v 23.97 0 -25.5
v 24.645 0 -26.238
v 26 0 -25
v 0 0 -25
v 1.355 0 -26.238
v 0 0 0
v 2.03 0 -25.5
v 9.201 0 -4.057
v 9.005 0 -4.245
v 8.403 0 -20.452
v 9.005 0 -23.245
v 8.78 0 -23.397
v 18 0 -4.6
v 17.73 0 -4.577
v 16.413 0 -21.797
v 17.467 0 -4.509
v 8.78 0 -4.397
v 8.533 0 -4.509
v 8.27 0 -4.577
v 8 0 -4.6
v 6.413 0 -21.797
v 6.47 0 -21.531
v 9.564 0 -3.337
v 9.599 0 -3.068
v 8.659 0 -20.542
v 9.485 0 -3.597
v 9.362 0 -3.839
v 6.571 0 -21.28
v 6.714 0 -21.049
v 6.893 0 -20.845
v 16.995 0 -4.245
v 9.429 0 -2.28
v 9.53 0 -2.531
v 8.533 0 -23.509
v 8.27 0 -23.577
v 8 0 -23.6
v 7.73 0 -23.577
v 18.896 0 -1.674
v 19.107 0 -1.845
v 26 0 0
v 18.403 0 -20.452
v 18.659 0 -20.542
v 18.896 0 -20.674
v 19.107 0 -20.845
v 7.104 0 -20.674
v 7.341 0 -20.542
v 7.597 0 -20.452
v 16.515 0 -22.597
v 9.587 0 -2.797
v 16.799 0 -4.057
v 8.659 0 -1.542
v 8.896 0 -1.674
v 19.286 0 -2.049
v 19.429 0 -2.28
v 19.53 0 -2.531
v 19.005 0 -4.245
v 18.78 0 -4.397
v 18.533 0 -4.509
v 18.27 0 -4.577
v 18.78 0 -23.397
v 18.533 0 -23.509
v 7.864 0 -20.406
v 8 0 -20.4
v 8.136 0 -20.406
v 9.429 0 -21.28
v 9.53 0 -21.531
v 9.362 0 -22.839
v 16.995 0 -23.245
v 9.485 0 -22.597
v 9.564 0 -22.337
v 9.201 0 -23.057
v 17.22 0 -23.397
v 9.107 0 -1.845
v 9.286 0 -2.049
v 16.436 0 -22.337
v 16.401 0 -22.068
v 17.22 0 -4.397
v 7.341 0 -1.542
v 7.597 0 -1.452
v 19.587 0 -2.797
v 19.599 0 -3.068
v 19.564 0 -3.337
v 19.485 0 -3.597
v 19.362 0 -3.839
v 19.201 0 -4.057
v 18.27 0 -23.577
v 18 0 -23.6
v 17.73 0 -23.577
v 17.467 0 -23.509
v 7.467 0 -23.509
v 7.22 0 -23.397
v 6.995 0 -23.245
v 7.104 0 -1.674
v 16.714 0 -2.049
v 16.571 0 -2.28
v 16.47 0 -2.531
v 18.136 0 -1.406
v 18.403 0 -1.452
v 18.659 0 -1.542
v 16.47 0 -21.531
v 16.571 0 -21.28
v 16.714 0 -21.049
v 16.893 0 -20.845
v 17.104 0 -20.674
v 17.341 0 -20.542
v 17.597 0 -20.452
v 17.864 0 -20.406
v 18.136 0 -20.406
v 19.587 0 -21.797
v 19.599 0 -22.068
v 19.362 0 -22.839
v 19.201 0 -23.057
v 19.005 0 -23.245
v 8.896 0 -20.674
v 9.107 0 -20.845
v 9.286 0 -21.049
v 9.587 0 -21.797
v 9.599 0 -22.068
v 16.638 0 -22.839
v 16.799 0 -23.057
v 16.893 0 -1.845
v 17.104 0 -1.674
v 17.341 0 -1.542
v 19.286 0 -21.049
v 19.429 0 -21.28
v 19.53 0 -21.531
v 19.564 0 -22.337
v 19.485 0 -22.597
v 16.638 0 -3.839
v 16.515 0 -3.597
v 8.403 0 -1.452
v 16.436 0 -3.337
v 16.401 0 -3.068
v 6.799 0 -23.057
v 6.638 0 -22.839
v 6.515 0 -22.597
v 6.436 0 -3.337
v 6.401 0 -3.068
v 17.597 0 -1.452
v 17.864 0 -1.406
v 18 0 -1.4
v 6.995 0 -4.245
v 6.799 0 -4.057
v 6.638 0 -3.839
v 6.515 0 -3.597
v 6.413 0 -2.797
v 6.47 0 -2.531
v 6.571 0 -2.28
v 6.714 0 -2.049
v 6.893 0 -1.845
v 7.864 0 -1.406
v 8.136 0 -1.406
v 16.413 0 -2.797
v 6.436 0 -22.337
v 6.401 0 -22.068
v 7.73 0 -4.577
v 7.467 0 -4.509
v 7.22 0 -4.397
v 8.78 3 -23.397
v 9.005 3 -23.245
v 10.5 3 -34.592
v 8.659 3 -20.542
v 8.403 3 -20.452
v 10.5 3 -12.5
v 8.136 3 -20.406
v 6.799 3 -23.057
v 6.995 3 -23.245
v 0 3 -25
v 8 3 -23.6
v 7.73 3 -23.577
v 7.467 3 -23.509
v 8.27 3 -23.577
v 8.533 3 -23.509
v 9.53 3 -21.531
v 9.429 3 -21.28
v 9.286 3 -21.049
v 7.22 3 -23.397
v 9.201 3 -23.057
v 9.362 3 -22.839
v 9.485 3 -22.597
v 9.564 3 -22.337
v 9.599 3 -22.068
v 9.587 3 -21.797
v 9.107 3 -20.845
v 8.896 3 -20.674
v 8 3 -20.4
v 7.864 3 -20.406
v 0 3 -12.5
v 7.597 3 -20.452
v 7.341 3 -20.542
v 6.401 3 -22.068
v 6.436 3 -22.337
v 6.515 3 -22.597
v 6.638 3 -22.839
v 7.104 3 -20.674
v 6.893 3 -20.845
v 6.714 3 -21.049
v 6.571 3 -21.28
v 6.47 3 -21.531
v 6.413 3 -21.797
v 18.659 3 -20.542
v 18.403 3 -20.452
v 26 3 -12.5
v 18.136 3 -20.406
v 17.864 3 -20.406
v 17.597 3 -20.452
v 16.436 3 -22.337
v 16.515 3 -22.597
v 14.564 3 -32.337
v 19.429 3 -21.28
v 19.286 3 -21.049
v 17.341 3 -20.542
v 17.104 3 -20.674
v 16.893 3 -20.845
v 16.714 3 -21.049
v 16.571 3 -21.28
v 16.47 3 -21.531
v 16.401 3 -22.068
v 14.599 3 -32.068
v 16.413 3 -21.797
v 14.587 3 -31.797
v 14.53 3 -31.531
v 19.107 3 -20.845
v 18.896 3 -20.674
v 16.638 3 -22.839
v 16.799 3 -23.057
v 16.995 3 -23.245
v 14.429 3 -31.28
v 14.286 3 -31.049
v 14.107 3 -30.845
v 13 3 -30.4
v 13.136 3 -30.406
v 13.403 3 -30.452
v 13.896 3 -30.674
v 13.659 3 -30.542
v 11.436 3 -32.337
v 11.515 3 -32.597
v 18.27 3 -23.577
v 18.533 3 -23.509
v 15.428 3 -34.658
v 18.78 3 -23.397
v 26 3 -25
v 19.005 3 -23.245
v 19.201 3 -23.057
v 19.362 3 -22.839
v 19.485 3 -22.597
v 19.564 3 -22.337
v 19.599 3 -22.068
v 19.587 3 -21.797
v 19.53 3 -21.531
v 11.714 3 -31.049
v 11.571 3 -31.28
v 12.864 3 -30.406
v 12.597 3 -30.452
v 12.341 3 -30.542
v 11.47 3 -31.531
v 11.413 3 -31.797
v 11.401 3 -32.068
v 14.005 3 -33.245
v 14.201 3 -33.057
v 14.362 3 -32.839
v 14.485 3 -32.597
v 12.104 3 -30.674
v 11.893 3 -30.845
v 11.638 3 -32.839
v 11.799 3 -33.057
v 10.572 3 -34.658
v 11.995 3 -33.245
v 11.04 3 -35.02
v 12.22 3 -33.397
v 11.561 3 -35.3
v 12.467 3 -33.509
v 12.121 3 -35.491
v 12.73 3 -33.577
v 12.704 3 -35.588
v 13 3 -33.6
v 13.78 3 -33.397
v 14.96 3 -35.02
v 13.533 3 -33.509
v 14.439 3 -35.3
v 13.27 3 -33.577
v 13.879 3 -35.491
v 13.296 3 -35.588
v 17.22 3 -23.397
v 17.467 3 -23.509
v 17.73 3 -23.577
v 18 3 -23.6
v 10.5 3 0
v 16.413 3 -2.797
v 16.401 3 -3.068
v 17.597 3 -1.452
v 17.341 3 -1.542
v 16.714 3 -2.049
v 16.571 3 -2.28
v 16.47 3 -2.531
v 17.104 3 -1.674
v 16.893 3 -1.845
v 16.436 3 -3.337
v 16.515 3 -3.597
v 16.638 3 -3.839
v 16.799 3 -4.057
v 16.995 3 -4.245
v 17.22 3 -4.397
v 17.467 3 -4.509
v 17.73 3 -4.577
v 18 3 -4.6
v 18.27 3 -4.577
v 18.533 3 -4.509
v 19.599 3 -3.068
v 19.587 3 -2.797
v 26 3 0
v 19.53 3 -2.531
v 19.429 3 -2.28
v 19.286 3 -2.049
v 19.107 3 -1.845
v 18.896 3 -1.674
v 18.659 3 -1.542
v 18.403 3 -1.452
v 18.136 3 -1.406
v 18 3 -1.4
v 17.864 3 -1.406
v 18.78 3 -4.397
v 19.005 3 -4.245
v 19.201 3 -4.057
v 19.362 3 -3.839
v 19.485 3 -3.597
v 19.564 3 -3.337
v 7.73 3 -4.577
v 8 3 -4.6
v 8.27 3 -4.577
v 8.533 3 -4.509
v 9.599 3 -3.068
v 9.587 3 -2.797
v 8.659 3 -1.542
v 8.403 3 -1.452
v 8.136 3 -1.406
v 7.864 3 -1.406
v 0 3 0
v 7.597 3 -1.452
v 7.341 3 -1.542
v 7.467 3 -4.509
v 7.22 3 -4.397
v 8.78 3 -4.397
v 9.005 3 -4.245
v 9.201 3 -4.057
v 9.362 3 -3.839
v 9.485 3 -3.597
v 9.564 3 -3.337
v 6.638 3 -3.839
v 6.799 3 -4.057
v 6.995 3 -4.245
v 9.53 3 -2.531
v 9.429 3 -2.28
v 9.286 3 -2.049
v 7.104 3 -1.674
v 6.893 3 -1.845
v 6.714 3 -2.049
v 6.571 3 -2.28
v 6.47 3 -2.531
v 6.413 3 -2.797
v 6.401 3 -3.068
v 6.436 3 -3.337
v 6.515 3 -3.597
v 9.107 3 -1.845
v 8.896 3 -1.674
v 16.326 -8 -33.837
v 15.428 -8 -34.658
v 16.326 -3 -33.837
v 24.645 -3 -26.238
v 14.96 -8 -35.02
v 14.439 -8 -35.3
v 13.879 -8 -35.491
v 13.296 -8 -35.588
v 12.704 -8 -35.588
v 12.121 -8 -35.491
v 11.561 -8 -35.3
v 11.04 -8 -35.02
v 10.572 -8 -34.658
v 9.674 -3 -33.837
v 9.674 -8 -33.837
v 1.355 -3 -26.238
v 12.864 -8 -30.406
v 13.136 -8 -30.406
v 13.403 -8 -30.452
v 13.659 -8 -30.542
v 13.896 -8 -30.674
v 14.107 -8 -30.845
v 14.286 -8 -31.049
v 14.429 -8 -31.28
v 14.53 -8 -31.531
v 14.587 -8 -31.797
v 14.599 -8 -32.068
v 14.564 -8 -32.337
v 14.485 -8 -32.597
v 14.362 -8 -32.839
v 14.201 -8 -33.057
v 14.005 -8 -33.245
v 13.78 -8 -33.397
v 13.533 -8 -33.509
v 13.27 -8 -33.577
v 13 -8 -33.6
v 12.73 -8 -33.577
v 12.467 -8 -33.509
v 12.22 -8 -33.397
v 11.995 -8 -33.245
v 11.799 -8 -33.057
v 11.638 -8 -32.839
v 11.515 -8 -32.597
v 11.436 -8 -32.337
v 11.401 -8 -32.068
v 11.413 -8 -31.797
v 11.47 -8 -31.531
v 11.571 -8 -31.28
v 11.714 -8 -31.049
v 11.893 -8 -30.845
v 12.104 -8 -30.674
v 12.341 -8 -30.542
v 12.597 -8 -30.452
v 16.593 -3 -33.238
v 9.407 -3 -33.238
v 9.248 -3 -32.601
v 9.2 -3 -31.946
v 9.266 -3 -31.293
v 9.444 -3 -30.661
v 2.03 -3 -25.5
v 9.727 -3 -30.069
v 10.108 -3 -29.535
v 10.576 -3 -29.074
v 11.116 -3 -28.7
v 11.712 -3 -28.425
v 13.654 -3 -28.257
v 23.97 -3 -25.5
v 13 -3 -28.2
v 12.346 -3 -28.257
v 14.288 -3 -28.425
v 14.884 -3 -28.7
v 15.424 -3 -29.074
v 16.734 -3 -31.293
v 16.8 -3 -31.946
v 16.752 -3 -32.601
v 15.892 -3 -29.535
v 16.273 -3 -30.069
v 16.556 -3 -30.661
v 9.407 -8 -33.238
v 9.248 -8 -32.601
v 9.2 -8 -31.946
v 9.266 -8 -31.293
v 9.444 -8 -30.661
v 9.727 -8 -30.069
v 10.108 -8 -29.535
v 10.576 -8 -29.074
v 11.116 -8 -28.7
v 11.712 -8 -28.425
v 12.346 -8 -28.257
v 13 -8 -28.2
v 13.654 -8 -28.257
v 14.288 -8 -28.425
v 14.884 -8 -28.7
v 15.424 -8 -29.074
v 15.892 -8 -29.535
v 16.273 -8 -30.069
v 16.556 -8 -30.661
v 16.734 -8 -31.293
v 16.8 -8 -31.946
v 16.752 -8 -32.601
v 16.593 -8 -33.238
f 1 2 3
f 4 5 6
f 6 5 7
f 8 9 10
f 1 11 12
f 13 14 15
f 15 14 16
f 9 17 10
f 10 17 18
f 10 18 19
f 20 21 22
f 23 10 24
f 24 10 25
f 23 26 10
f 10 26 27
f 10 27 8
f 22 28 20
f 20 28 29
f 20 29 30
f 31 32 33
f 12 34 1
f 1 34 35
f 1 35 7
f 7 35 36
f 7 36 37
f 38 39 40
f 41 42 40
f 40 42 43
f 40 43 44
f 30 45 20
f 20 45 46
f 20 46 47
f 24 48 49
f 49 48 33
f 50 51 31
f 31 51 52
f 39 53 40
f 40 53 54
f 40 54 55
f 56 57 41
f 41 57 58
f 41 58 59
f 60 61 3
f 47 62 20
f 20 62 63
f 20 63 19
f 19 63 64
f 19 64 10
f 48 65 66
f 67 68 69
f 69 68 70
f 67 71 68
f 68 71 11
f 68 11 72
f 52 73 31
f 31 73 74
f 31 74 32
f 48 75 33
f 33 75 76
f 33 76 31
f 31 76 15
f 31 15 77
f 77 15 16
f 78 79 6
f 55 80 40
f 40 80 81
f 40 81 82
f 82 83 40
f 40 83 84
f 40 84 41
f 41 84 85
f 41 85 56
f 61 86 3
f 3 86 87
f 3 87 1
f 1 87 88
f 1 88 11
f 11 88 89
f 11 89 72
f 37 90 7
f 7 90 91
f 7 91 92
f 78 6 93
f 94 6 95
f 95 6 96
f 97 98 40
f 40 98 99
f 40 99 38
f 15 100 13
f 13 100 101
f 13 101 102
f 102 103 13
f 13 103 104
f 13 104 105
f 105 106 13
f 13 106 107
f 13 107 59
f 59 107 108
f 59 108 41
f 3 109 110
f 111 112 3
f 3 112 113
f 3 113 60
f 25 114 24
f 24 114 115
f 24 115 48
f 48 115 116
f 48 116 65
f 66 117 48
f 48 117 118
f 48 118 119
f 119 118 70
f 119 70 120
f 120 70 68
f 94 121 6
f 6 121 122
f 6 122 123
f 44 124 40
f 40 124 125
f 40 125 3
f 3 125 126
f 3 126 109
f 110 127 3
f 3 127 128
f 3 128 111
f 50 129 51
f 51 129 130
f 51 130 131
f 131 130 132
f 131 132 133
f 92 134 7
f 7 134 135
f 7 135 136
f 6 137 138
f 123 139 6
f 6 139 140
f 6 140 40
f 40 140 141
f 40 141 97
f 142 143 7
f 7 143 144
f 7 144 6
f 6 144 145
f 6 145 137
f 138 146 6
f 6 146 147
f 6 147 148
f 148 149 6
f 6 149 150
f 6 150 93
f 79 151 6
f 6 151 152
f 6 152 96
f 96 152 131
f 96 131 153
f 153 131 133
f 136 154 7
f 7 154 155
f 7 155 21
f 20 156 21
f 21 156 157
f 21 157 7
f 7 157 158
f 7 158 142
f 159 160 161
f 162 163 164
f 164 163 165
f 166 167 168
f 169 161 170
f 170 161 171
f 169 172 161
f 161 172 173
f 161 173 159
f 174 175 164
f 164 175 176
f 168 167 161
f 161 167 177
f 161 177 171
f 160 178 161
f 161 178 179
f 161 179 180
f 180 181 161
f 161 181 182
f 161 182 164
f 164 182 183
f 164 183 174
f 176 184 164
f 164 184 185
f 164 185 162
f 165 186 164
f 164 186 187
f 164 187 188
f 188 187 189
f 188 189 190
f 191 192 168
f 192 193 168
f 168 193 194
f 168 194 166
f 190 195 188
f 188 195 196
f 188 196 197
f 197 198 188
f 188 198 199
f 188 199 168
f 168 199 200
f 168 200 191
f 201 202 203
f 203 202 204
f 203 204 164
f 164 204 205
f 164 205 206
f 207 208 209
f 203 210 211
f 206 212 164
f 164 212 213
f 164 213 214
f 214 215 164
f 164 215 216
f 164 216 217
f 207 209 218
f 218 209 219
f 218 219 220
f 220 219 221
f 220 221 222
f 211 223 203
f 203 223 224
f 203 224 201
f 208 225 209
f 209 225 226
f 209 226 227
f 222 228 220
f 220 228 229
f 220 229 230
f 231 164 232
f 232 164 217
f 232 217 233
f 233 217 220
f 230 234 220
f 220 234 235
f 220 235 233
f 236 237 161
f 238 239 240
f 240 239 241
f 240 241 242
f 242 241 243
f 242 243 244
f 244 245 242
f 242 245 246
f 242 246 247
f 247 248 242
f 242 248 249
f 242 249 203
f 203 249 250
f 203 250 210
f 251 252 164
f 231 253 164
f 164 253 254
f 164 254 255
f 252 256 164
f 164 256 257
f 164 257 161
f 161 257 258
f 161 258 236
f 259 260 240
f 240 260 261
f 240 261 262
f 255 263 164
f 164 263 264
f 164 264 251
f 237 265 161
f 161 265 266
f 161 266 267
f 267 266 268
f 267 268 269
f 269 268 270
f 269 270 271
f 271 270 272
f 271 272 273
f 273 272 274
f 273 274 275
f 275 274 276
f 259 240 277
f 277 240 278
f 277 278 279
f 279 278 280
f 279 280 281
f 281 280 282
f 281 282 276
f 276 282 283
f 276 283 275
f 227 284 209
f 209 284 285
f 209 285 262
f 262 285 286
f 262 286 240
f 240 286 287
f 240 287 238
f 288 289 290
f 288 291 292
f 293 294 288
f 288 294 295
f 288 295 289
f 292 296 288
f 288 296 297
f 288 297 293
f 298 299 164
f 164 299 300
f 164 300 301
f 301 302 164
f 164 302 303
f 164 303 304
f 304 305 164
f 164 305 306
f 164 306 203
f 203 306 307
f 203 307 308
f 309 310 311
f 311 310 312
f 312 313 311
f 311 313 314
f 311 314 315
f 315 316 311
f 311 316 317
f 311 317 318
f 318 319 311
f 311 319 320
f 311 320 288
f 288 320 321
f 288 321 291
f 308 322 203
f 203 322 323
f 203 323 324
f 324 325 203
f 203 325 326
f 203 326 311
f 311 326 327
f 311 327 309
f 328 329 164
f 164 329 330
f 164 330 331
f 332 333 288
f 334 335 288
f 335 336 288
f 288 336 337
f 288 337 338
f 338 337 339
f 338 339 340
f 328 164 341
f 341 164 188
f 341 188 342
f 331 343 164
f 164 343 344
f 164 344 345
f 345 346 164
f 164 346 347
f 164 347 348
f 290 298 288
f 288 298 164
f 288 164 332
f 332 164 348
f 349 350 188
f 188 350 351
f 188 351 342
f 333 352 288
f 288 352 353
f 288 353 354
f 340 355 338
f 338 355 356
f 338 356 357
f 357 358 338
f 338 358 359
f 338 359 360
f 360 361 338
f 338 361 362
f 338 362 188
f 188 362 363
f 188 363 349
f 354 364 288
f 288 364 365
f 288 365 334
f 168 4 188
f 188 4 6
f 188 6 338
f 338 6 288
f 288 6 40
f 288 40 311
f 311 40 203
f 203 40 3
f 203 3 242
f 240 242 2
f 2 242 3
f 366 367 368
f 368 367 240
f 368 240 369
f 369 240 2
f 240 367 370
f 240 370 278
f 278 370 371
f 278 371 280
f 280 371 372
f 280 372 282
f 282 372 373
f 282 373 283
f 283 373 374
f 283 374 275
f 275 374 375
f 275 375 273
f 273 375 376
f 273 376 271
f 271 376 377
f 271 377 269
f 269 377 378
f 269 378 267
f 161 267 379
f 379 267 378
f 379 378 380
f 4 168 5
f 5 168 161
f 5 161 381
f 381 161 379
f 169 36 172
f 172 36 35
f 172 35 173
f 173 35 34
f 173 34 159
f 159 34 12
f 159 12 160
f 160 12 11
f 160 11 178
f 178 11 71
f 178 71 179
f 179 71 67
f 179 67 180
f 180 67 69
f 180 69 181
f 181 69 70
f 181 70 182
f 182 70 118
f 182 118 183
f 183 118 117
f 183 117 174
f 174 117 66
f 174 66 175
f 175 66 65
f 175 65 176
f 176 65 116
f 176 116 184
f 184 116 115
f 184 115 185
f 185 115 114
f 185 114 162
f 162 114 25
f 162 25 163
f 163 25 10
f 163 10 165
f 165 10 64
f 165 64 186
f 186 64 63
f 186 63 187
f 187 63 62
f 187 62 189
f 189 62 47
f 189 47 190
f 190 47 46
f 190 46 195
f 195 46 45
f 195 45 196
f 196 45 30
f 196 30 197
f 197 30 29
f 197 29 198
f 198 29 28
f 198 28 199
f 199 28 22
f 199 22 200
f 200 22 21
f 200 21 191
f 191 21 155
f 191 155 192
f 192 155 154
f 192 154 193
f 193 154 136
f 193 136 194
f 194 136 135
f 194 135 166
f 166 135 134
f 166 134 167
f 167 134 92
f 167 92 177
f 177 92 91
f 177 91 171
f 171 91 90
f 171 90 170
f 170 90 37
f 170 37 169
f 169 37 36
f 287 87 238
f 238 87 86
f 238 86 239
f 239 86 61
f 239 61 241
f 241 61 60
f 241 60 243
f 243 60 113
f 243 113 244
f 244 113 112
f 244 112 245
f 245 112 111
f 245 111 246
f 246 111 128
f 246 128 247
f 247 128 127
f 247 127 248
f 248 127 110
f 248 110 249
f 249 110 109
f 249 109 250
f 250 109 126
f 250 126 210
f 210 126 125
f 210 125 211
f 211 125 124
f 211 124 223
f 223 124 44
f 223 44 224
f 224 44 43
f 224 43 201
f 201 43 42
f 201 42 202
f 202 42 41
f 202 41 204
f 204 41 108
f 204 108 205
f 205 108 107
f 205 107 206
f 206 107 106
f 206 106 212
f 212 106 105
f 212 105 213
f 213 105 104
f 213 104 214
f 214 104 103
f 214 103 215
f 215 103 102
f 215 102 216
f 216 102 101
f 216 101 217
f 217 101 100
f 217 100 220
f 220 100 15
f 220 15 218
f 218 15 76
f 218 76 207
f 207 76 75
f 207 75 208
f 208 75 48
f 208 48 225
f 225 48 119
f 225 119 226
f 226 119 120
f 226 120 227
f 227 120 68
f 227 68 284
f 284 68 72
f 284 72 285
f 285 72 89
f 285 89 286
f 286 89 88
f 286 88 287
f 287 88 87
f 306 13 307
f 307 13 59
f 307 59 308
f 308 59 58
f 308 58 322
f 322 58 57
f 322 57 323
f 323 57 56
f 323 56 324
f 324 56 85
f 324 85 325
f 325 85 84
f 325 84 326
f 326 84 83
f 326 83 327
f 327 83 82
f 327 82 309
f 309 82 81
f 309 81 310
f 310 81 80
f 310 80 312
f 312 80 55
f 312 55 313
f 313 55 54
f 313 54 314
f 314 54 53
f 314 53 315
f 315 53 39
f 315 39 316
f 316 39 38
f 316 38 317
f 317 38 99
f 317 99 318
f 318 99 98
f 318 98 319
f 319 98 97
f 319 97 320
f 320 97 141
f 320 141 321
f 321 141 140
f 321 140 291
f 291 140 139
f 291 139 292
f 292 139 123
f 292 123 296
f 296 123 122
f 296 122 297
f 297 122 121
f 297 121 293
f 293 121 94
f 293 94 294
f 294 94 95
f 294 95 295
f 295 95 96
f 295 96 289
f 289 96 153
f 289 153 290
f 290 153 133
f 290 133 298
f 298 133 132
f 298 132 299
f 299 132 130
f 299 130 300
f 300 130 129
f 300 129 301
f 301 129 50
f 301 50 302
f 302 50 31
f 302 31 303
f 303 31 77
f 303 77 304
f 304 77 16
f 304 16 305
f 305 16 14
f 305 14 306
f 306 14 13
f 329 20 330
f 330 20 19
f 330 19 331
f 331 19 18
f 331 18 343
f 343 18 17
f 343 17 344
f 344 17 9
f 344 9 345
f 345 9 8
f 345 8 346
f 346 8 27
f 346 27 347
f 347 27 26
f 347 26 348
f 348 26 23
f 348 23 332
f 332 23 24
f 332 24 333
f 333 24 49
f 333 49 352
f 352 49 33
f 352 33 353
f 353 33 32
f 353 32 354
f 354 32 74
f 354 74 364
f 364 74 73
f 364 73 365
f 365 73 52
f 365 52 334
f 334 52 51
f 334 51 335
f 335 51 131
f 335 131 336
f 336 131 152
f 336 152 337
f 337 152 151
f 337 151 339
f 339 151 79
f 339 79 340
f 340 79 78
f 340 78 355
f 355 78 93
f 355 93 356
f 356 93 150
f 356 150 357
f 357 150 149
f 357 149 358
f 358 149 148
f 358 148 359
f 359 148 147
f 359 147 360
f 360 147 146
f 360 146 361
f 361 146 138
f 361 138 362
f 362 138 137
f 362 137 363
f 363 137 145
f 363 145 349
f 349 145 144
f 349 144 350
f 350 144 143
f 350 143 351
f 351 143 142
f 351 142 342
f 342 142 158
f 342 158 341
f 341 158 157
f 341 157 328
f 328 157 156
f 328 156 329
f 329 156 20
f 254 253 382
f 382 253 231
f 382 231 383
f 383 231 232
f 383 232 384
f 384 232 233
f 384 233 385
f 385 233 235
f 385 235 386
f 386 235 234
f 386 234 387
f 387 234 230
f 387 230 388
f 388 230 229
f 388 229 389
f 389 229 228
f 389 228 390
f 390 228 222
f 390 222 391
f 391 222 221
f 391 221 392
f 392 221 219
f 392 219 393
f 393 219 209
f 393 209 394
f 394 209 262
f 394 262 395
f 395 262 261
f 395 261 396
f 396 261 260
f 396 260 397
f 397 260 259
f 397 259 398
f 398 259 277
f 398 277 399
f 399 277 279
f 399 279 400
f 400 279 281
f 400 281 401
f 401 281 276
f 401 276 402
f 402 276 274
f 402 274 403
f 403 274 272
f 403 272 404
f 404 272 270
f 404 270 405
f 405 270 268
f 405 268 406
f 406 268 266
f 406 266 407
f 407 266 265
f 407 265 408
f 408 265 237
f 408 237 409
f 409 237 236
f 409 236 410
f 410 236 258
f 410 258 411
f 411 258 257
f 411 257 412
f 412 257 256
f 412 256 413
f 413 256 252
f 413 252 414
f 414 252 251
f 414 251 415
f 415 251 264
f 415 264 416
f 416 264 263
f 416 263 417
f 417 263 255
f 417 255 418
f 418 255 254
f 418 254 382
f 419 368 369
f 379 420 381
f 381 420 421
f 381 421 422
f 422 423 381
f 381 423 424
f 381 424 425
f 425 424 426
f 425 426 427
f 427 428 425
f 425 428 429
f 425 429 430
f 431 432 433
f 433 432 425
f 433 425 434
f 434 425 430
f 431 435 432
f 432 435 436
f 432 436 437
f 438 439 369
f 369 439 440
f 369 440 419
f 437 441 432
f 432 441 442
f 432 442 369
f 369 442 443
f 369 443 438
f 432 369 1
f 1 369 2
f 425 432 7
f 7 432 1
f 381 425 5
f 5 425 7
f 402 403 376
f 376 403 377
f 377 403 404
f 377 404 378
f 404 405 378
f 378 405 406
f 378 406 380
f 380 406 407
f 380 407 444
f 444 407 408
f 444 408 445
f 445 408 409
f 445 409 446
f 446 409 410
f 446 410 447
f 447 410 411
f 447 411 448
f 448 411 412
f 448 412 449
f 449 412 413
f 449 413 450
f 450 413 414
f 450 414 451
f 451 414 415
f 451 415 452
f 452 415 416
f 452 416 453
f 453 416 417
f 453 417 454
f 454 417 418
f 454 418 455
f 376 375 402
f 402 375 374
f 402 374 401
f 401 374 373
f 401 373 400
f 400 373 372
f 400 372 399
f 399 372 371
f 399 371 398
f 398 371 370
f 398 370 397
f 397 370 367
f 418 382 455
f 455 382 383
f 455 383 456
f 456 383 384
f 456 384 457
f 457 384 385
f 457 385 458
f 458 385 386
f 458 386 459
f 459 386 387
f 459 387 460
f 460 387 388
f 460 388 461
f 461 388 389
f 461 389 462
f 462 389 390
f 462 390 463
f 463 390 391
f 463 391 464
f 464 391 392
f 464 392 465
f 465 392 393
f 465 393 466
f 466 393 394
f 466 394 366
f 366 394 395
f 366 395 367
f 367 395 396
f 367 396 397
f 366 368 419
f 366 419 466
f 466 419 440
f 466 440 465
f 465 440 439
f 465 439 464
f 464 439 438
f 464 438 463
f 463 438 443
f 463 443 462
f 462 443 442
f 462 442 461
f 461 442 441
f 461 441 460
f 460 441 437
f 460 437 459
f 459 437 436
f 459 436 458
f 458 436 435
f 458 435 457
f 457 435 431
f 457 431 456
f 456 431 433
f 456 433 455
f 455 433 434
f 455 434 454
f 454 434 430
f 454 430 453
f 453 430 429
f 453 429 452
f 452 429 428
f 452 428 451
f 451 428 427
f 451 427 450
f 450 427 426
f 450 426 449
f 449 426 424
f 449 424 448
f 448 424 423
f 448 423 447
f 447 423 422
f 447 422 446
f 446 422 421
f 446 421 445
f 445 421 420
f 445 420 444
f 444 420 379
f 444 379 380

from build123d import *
from build123d.topology import SkipClean

# Parameters (mm, degrees)
SKETCH_2_R      = 1.6
EXTRUDE_1_DEPTH = 3
EXTRUDE_START   = 3
SKETCH_3_R      = 1.6
EXTRUDE_2_DEPTH = 3
EXTRUDE_START_2 = 5
SKETCH_4_R      = 1.6
EXTRUDE_3_DEPTH = 5


with BuildPart() as part:
    # 草图2 → 凸台-拉伸1 (new body)
    with BuildSketch(Plane(origin=(0, 0, 0), x_dir=(1, 0, 0), z_dir=(0, 1, 0))):
        with BuildLine():
            Line((0, 0), (26, 0))
            Line((26, 0), (26, 25))
            Line((26, 25), (15.428093073, 34.657887136))
            ThreePointArc((15.428093073, 34.657887136), (13, 35.6), (10.571906927, 34.657887136))
            Line((10.571906927, 34.657887136), (0, 25))
            Line((0, 25), (0, 0))
        make_face()
        with Locations(Location((8, 22, 0), (0, 0, 270))):
            Circle(SKETCH_2_R, mode=Mode.SUBTRACT)
        with Locations(Location((18, 22, 0), (0, 0, 90))):
            Circle(SKETCH_2_R, mode=Mode.SUBTRACT)
        with Locations(Location((18, 3, 0), (0, 0, 270))):
            Circle(SKETCH_2_R, mode=Mode.SUBTRACT)
        with Locations(Location((8, 3, 0), (0, 0, 90))):
            Circle(SKETCH_2_R, mode=Mode.SUBTRACT)
        with Locations(Location((13, 32, 0), (0, 0, 270))):
            Circle(SKETCH_2_R, mode=Mode.SUBTRACT)
    extrude(amount=EXTRUDE_1_DEPTH)

    # 草图3 → 凸台-拉伸2 (add)
    with SkipClean():  # the faces are left unmerged after this step: merging them gives an invalid solid
        with BuildSketch(Plane.XZ.offset(EXTRUDE_START)):
            with BuildLine():
                Line((2.02996484, -25.5), (23.97003516, -25.5))
                Line((23.97003516, -25.5), (24.644505458, -26.238301982))
                Line((24.644505458, -26.238301982), (15.428093073, -34.657887136))
                ThreePointArc((15.428093073, -34.657887136), (13, -35.6), (10.571906927, -34.657887136))
                Line((10.571906927, -34.657887136), (1.355494542, -26.238301982))
                Line((1.355494542, -26.238301982), (2.02996484, -25.5))
            make_face()
            with Locations(Location((13, -32, 0), (0, 0, 270))):
                Circle(SKETCH_3_R, mode=Mode.SUBTRACT)
        extrude(amount=-EXTRUDE_2_DEPTH)

    # 草图4 → 凸台-拉伸3 (add)
    with SkipClean():  # the faces are left unmerged after this step: merging them gives an invalid solid
        with BuildSketch(Plane.XZ.offset(3).offset(EXTRUDE_START_2)):
            with BuildLine():
                Line((9.6737238, -33.837358605), (10.571906927, -34.657887136))
                ThreePointArc((10.571906927, -34.657887136), (13, -35.6), (15.428093073, -34.657887136))
                Line((15.428093073, -34.657887136), (16.3262762, -33.837358605))
                ThreePointArc((16.3262762, -33.837358605), (14.7315968, -28.61746064), (9.564559196, -30.37588594))
                ThreePointArc((9.564559196, -30.37588594), (9.201888303, -32.119781203), (9.6737238, -33.837358605))
            make_face()
            with Locations(Location((13, -32, 0), (0, 0, 270))):
                Circle(SKETCH_4_R, mode=Mode.SUBTRACT)
        extrude(amount=-EXTRUDE_3_DEPTH)


solid = part.part
